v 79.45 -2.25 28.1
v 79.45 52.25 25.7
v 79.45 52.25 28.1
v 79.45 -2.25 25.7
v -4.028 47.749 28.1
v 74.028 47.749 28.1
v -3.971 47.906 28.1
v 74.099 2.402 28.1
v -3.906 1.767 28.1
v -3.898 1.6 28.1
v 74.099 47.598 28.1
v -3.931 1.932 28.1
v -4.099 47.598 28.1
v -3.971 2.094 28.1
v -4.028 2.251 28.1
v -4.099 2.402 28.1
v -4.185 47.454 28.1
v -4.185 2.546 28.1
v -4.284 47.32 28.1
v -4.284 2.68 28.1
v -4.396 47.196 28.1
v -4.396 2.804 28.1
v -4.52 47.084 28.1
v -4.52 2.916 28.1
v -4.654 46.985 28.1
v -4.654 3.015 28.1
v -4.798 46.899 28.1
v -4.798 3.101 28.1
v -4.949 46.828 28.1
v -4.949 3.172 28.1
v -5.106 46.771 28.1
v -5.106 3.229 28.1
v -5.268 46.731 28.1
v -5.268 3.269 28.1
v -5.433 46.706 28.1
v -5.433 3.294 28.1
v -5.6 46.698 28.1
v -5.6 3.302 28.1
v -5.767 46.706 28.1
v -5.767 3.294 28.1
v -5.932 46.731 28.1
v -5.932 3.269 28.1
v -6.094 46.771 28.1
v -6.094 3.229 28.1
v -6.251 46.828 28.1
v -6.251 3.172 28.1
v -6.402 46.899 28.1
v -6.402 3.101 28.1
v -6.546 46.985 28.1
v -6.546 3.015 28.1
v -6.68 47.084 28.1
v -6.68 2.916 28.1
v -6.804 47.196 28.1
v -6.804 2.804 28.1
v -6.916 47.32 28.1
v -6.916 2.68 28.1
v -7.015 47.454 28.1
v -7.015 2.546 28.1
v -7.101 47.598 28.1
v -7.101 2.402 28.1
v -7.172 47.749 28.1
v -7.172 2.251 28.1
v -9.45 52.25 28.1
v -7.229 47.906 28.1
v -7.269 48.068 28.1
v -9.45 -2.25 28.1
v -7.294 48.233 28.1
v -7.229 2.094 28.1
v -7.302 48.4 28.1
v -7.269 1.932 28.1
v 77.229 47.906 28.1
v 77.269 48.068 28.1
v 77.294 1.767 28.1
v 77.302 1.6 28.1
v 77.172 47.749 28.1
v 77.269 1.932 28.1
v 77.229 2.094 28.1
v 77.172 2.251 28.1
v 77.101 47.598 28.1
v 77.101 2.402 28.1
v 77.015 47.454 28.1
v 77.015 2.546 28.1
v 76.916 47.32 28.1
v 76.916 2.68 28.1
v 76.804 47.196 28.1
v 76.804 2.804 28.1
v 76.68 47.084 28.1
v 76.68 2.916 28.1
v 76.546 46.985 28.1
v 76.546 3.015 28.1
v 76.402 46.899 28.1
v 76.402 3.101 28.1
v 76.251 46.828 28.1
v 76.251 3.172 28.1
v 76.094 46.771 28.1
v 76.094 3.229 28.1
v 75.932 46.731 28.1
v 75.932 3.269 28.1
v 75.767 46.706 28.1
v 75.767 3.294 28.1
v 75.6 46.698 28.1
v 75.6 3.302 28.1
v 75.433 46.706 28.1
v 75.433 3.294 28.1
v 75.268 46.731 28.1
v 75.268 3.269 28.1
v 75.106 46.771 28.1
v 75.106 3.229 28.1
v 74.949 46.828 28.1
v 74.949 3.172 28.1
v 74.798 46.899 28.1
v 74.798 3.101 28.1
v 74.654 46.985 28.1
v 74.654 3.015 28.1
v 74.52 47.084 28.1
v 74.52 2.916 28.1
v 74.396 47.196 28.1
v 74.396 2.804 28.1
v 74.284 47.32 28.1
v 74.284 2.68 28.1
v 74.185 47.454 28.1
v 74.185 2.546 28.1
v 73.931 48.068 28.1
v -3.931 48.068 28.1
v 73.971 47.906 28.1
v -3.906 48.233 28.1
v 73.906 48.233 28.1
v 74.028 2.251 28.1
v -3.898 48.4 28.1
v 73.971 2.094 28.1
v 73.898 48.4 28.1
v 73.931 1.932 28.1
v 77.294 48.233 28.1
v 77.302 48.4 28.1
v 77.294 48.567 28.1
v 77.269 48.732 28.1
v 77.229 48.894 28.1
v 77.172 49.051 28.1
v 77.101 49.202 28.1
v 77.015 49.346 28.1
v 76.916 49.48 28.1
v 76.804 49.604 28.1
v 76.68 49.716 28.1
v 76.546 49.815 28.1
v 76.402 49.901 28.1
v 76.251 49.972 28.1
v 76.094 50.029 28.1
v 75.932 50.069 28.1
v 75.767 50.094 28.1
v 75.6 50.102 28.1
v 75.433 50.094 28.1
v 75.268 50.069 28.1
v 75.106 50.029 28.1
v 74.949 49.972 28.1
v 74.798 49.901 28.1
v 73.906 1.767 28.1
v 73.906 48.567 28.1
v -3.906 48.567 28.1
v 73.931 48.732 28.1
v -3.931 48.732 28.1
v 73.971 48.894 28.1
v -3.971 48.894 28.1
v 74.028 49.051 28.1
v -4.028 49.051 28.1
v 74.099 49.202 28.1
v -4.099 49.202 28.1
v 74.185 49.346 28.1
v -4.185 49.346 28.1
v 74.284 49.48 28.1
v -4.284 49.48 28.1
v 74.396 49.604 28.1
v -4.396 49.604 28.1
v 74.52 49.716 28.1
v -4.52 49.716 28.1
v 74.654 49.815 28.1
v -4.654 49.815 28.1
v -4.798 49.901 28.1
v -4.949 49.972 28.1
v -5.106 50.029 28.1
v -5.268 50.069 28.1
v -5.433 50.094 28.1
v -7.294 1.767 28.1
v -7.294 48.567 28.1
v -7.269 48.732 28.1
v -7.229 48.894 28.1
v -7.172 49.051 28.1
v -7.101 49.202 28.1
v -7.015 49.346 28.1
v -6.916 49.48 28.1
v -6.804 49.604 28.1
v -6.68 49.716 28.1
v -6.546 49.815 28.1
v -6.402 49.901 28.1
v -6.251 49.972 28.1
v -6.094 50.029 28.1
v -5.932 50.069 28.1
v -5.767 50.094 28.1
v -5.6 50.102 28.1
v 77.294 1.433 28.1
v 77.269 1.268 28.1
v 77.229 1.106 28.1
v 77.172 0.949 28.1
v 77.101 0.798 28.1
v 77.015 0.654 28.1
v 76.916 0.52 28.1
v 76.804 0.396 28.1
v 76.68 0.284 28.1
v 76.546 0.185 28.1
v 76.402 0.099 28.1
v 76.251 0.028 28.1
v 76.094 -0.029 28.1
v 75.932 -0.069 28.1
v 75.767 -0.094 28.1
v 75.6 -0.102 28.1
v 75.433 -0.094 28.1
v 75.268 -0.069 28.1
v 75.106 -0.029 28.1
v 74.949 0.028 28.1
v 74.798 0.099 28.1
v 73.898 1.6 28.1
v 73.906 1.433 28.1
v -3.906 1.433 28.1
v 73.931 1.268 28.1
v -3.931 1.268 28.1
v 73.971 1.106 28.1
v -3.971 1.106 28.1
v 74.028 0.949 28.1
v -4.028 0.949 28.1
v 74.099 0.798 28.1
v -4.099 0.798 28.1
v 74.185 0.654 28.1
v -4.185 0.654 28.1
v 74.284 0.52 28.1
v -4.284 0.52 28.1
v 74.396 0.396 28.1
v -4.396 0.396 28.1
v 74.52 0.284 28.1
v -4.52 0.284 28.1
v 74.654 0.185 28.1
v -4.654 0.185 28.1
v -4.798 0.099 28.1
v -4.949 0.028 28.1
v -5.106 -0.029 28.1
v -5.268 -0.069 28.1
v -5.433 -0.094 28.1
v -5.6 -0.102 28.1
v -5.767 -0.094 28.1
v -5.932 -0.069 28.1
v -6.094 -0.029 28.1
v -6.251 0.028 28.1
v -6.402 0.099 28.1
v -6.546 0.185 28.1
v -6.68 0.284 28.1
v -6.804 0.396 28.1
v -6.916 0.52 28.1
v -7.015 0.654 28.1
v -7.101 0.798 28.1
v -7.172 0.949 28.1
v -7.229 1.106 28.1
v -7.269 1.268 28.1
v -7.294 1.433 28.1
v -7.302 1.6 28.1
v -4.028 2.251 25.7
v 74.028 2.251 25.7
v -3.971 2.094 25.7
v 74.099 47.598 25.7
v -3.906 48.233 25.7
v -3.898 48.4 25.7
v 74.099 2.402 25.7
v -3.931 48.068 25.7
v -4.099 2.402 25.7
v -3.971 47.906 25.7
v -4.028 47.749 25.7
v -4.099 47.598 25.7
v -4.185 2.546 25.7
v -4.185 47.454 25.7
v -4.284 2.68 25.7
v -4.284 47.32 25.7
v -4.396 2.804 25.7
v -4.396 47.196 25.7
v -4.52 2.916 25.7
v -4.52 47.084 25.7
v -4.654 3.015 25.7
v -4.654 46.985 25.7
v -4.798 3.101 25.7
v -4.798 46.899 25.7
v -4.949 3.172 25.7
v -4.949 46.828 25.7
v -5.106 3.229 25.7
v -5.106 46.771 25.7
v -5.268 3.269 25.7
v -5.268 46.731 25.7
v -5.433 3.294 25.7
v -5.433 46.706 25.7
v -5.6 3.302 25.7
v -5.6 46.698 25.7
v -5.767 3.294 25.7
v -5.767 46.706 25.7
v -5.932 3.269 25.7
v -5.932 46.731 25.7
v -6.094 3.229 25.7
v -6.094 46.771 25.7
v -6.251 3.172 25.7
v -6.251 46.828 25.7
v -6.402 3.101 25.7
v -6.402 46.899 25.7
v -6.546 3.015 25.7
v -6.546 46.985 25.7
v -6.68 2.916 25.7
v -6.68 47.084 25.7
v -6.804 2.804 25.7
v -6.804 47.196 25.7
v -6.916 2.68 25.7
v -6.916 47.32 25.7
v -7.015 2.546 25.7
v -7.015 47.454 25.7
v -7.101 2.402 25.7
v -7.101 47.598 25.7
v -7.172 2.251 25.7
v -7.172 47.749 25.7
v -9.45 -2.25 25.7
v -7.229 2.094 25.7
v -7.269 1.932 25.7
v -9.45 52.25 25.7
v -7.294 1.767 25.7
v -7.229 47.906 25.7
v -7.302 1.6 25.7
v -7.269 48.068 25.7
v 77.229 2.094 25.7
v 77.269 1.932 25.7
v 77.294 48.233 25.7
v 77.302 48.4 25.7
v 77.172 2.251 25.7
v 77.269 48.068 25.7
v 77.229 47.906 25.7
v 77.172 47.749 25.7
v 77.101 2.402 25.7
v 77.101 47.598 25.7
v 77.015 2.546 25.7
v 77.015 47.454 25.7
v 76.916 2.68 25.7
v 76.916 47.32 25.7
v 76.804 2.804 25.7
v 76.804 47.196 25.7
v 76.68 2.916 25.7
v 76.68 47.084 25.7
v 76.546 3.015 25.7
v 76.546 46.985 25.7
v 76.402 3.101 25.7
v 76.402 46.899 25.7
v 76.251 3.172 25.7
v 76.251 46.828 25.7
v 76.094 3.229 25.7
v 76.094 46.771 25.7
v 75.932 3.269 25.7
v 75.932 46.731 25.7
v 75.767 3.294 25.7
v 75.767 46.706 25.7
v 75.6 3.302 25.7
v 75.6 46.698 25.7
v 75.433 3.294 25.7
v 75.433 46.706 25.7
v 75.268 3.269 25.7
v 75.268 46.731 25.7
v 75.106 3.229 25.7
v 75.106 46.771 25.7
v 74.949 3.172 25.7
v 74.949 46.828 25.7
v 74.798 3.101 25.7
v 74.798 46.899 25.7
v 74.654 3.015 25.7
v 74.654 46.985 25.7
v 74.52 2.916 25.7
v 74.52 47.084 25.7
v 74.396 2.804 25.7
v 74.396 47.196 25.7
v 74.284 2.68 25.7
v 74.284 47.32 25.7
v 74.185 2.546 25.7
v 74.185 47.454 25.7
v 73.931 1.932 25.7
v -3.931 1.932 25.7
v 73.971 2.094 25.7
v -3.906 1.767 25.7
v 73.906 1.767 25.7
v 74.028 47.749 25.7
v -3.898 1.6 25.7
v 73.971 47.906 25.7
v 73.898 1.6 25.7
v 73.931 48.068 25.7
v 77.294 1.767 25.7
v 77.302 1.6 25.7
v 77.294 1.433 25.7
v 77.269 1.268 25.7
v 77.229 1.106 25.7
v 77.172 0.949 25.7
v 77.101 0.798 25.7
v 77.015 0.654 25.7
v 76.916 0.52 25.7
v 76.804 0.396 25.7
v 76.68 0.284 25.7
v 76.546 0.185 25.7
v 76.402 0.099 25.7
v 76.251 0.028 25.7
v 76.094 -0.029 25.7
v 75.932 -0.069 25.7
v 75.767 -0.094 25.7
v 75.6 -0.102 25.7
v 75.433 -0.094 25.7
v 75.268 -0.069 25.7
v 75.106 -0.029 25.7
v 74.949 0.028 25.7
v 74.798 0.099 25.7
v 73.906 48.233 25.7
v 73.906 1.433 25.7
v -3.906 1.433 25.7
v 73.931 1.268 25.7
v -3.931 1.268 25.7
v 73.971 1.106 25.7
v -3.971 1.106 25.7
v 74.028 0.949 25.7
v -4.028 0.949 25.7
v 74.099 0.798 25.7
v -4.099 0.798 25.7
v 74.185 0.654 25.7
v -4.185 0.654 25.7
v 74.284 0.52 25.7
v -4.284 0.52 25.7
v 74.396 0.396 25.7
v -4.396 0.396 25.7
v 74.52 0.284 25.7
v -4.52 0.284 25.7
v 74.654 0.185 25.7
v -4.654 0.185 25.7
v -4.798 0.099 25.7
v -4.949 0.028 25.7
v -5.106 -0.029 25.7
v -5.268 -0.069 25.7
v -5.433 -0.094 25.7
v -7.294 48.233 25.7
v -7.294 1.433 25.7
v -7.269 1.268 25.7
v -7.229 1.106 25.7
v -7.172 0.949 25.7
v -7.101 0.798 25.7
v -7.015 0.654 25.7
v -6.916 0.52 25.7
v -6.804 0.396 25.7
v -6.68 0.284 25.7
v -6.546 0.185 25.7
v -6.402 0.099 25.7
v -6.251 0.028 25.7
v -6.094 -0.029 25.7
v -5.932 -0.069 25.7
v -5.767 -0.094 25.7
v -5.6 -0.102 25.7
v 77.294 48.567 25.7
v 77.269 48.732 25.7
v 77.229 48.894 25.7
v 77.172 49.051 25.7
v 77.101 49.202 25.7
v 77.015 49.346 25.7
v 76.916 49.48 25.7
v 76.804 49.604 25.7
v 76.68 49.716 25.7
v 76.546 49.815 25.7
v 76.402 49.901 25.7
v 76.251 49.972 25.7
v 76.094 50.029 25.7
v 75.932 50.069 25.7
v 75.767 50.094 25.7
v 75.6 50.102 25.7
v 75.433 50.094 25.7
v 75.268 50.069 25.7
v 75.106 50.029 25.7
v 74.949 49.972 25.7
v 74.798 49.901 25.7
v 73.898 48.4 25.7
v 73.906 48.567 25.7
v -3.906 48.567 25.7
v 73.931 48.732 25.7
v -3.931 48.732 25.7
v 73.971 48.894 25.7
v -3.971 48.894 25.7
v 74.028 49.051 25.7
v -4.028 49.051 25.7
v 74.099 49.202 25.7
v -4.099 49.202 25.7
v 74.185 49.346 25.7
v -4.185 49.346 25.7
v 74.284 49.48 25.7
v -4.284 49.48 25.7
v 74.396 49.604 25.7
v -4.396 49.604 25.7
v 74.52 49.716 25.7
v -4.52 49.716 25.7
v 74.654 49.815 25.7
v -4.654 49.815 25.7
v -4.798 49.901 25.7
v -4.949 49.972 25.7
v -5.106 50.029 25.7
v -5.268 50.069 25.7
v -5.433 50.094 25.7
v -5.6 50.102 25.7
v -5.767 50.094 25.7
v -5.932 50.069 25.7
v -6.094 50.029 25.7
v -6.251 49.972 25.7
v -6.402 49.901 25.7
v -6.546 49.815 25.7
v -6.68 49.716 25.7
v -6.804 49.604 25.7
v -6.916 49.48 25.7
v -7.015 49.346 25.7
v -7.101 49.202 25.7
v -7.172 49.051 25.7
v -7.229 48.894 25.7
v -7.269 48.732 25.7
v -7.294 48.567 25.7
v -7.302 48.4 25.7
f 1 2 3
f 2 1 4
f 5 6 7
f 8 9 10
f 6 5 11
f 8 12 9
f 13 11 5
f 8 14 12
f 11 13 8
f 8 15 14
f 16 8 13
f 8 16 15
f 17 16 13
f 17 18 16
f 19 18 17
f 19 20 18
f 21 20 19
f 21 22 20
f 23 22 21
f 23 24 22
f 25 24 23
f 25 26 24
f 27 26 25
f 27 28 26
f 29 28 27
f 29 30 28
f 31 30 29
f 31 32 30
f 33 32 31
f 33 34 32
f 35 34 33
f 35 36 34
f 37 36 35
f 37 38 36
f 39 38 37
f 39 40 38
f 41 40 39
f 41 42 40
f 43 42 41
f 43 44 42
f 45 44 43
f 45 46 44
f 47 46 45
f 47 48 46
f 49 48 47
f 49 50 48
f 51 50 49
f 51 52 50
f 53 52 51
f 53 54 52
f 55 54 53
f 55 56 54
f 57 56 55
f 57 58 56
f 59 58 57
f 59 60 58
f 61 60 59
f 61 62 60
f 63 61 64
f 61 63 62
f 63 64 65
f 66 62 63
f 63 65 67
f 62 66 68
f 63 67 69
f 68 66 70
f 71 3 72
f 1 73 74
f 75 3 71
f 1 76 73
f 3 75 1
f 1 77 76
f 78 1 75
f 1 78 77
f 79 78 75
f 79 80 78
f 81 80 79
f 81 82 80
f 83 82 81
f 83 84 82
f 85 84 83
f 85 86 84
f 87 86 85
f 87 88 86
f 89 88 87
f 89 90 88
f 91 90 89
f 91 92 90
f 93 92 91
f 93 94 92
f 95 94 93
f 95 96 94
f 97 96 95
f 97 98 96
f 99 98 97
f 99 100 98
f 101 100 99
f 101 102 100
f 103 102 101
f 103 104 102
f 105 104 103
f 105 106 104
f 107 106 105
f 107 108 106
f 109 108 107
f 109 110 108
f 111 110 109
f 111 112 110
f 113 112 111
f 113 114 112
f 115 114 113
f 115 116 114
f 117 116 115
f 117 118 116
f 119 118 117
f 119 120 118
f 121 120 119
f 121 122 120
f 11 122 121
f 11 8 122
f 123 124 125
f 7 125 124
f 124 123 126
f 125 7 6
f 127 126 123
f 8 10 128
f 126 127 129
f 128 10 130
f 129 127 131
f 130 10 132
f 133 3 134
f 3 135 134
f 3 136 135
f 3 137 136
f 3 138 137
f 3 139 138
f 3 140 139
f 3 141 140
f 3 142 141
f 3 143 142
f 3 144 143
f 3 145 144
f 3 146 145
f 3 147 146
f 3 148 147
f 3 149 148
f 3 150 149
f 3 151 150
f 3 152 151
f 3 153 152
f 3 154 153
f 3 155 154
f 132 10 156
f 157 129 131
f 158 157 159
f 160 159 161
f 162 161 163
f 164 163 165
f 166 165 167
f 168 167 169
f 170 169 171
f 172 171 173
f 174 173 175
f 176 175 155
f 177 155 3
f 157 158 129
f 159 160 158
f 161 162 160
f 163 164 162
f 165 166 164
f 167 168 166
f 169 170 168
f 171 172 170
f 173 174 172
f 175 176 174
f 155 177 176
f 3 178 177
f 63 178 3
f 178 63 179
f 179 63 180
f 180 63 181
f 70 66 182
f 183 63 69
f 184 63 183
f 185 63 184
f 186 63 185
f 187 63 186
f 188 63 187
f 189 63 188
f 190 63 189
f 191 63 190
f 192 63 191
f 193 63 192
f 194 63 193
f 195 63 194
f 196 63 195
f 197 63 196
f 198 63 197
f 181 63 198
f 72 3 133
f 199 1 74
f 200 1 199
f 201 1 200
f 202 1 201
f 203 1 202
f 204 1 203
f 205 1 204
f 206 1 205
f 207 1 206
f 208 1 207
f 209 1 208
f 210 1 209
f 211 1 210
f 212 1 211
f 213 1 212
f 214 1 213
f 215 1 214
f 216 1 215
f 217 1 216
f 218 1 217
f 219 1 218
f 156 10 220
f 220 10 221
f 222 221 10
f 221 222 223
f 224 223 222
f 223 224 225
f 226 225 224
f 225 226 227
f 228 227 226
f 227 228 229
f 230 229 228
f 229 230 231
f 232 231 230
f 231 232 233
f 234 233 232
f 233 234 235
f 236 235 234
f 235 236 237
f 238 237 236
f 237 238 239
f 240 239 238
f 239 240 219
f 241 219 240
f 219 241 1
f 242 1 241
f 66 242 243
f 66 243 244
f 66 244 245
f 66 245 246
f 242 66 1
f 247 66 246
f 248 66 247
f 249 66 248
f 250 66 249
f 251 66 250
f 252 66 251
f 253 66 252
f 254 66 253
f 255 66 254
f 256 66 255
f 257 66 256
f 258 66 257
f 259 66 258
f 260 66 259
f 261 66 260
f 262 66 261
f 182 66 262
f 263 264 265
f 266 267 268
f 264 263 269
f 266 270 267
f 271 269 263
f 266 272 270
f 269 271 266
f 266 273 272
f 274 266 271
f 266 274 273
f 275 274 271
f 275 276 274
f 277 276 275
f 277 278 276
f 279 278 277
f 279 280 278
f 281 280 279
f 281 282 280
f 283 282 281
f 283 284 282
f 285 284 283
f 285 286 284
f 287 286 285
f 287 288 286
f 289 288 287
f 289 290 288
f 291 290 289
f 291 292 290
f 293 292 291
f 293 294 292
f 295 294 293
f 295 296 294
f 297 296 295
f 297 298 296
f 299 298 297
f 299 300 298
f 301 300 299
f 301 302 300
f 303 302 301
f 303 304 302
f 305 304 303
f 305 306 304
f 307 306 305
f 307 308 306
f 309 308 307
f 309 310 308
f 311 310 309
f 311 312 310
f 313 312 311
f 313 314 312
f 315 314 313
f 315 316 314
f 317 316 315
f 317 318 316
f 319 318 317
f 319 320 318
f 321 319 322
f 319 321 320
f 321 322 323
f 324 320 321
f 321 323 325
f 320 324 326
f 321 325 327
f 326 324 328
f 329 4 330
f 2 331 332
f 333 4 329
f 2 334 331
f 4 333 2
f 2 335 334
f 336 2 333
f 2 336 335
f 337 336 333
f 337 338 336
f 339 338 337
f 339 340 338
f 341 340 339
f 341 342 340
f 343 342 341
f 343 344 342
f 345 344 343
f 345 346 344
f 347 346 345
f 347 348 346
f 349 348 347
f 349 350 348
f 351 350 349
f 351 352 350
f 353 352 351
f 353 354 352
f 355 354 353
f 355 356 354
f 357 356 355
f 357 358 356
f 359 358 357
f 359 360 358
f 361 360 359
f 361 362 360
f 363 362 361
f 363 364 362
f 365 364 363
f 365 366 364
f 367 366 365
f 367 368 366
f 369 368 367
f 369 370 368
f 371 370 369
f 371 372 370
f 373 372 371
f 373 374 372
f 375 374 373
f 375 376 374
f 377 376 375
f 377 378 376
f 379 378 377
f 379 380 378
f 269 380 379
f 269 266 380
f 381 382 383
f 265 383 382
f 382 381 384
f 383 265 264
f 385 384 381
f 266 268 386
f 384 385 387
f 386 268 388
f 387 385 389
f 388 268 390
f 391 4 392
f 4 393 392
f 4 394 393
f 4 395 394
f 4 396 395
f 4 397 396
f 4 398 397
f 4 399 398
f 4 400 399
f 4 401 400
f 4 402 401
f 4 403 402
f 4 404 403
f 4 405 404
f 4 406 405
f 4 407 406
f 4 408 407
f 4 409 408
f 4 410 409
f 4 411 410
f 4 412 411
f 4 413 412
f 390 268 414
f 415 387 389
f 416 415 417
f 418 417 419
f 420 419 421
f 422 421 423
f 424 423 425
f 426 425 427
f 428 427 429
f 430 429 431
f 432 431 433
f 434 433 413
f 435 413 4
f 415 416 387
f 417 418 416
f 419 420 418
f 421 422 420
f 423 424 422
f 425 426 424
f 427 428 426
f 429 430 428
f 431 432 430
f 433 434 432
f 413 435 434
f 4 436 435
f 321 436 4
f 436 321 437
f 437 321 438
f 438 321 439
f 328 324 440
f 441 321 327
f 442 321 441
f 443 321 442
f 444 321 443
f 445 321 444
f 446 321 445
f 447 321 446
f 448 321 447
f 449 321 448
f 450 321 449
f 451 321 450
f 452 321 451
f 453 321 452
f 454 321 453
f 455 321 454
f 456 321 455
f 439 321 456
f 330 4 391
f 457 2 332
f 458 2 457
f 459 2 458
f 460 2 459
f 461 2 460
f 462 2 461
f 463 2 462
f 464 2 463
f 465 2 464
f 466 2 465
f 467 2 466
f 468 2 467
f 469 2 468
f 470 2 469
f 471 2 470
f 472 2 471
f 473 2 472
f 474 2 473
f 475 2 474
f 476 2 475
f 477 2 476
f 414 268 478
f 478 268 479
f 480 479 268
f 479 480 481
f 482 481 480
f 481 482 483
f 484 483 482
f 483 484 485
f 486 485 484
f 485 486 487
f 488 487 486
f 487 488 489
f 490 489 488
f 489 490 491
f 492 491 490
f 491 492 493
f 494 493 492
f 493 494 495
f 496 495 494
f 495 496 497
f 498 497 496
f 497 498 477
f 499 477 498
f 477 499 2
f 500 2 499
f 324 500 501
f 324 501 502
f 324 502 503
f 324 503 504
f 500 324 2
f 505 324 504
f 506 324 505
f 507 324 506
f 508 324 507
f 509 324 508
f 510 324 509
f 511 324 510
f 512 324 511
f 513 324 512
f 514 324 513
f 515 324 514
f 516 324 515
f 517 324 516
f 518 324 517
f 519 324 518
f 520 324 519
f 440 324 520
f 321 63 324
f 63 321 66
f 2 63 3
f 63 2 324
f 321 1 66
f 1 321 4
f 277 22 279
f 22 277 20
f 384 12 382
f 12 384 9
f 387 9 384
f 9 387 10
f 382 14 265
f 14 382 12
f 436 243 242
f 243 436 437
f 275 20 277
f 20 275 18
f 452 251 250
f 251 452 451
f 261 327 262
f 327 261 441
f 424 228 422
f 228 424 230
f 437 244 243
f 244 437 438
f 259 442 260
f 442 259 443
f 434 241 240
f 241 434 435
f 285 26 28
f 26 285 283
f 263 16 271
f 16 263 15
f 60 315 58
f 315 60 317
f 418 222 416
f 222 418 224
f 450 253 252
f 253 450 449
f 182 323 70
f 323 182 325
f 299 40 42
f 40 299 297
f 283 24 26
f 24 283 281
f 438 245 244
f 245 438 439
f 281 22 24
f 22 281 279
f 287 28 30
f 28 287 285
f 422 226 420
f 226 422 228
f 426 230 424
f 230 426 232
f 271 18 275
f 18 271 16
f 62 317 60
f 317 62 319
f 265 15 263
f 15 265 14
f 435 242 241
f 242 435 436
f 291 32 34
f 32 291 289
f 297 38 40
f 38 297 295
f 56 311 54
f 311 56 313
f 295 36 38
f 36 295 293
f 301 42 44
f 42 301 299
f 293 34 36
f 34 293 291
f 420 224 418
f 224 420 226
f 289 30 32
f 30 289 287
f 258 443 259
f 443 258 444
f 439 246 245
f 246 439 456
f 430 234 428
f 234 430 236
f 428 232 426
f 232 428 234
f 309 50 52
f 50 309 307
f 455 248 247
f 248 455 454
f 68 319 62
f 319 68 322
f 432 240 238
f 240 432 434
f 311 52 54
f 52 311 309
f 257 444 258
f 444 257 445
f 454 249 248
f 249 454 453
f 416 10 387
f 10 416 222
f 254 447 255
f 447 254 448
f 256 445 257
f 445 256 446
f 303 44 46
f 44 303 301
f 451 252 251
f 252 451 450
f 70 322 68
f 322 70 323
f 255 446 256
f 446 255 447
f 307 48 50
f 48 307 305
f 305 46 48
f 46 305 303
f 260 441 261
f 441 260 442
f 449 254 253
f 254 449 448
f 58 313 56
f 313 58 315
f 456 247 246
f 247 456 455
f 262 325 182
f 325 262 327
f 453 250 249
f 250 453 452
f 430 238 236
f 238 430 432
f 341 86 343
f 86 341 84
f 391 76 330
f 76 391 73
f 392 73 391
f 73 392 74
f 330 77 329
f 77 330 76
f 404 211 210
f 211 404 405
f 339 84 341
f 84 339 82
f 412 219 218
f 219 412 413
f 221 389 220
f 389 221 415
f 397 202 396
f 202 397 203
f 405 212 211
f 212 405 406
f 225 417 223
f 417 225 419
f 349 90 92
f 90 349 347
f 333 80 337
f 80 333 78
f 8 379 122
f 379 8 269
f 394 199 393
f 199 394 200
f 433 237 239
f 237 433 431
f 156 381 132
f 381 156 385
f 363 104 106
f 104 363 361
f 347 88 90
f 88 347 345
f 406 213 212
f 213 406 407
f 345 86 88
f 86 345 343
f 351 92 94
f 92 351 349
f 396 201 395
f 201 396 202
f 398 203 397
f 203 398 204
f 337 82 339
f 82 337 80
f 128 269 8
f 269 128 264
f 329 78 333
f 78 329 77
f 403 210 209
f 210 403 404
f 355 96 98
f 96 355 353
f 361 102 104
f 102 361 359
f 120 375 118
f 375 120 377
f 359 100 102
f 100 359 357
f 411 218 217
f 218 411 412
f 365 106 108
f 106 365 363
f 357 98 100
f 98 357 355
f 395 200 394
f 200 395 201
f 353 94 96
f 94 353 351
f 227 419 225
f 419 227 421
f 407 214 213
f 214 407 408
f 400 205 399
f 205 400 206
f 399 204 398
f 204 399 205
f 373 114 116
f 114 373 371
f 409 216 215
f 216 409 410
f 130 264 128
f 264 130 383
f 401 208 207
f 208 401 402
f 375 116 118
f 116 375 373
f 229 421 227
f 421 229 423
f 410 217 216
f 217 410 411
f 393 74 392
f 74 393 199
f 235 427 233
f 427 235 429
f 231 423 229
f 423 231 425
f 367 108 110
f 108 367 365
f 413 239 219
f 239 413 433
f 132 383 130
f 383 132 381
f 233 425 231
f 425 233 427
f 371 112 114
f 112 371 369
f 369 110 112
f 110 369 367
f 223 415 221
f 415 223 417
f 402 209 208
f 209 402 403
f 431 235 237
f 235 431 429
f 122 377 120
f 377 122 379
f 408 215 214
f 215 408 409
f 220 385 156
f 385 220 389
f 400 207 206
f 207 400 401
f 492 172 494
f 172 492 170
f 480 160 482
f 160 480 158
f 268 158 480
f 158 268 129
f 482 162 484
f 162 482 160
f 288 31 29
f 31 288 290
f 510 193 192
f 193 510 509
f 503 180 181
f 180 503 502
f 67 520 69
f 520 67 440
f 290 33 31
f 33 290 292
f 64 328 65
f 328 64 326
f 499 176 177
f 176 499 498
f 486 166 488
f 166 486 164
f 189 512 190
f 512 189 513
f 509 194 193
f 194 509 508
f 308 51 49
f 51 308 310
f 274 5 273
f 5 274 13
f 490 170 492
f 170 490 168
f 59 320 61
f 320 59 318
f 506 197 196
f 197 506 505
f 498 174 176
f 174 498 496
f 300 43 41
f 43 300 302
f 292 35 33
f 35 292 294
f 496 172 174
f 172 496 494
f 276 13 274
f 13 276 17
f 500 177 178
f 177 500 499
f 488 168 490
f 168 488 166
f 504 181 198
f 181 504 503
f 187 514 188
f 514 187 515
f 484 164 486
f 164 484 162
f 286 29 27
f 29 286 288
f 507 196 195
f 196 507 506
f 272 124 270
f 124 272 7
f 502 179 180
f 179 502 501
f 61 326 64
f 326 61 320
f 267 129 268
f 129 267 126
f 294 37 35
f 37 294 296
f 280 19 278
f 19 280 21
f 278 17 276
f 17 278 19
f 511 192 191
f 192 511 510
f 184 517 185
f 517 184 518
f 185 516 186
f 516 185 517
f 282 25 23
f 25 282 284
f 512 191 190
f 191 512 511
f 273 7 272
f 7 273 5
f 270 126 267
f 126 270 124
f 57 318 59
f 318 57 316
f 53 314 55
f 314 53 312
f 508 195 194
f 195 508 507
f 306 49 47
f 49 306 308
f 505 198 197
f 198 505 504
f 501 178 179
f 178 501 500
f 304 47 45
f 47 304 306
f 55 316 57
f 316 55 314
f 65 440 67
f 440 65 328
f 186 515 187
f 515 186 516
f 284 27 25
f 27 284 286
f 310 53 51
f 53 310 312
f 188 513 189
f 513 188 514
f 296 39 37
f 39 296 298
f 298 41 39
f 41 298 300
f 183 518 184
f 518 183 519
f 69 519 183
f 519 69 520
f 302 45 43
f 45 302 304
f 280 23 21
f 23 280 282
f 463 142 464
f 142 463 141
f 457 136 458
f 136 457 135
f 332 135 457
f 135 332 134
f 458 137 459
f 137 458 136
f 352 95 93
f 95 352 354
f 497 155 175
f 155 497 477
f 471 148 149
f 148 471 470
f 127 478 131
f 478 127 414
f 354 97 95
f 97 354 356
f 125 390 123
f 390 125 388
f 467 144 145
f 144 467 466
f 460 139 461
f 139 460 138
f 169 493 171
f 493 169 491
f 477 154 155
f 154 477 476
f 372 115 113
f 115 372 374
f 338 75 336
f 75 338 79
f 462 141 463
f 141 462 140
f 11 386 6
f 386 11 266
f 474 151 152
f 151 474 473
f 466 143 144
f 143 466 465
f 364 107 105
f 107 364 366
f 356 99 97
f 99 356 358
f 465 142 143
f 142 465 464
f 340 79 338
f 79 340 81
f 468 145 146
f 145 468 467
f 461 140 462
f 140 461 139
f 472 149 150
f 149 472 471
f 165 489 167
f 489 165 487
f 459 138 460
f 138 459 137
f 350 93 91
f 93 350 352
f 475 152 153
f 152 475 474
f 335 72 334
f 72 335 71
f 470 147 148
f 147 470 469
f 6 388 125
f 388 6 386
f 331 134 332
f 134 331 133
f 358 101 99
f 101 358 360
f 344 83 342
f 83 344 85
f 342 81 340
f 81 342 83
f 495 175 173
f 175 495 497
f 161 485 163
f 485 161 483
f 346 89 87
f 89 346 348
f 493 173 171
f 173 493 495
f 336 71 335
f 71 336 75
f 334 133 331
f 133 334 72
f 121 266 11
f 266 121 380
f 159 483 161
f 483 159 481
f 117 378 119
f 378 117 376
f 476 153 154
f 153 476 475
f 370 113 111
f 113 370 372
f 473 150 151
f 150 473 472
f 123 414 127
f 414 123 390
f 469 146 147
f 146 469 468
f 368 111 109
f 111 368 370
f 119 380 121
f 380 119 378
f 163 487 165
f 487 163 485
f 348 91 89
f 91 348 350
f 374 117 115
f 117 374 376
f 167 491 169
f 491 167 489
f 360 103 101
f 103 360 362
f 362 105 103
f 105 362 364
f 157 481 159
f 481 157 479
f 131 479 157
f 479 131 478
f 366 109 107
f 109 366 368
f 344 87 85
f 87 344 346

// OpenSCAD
// body lid
difference() {
  union() {
    // body lid (lid_plate)
    multmatrix([[1, 0, 0, 35], [0, 1, 0, 25], [0, 0, 1, 25.7], [0, 0, 0, 1]]) translate([-44.45, -27.25, 0]) cube([88.9, 54.5, 2.4]);
  }
  // cut boss_1_lid_hole (screw_hole)
  multmatrix([[1, 0, 0, -5.6], [0, 1, 0, 1.6], [0, 0, 1, 24.7], [0, 0, 0, 1]]) cylinder(h=4.4, d=3.4041, $fn=64);
  // cut boss_2_lid_hole (screw_hole)
  multmatrix([[1, 0, 0, 75.6], [0, 1, 0, 1.6], [0, 0, 1, 24.7], [0, 0, 0, 1]]) cylinder(h=4.4, d=3.4041, $fn=64);
  // cut boss_3_lid_hole (screw_hole)
  multmatrix([[1, 0, 0, -5.6], [0, 1, 0, 48.4], [0, 0, 1, 24.7], [0, 0, 0, 1]]) cylinder(h=4.4, d=3.4041, $fn=64);
  // cut boss_4_lid_hole (screw_hole)
  multmatrix([[1, 0, 0, 75.6], [0, 1, 0, 48.4], [0, 0, 1, 24.7], [0, 0, 0, 1]]) cylinder(h=4.4, d=3.4041, $fn=64);
}
